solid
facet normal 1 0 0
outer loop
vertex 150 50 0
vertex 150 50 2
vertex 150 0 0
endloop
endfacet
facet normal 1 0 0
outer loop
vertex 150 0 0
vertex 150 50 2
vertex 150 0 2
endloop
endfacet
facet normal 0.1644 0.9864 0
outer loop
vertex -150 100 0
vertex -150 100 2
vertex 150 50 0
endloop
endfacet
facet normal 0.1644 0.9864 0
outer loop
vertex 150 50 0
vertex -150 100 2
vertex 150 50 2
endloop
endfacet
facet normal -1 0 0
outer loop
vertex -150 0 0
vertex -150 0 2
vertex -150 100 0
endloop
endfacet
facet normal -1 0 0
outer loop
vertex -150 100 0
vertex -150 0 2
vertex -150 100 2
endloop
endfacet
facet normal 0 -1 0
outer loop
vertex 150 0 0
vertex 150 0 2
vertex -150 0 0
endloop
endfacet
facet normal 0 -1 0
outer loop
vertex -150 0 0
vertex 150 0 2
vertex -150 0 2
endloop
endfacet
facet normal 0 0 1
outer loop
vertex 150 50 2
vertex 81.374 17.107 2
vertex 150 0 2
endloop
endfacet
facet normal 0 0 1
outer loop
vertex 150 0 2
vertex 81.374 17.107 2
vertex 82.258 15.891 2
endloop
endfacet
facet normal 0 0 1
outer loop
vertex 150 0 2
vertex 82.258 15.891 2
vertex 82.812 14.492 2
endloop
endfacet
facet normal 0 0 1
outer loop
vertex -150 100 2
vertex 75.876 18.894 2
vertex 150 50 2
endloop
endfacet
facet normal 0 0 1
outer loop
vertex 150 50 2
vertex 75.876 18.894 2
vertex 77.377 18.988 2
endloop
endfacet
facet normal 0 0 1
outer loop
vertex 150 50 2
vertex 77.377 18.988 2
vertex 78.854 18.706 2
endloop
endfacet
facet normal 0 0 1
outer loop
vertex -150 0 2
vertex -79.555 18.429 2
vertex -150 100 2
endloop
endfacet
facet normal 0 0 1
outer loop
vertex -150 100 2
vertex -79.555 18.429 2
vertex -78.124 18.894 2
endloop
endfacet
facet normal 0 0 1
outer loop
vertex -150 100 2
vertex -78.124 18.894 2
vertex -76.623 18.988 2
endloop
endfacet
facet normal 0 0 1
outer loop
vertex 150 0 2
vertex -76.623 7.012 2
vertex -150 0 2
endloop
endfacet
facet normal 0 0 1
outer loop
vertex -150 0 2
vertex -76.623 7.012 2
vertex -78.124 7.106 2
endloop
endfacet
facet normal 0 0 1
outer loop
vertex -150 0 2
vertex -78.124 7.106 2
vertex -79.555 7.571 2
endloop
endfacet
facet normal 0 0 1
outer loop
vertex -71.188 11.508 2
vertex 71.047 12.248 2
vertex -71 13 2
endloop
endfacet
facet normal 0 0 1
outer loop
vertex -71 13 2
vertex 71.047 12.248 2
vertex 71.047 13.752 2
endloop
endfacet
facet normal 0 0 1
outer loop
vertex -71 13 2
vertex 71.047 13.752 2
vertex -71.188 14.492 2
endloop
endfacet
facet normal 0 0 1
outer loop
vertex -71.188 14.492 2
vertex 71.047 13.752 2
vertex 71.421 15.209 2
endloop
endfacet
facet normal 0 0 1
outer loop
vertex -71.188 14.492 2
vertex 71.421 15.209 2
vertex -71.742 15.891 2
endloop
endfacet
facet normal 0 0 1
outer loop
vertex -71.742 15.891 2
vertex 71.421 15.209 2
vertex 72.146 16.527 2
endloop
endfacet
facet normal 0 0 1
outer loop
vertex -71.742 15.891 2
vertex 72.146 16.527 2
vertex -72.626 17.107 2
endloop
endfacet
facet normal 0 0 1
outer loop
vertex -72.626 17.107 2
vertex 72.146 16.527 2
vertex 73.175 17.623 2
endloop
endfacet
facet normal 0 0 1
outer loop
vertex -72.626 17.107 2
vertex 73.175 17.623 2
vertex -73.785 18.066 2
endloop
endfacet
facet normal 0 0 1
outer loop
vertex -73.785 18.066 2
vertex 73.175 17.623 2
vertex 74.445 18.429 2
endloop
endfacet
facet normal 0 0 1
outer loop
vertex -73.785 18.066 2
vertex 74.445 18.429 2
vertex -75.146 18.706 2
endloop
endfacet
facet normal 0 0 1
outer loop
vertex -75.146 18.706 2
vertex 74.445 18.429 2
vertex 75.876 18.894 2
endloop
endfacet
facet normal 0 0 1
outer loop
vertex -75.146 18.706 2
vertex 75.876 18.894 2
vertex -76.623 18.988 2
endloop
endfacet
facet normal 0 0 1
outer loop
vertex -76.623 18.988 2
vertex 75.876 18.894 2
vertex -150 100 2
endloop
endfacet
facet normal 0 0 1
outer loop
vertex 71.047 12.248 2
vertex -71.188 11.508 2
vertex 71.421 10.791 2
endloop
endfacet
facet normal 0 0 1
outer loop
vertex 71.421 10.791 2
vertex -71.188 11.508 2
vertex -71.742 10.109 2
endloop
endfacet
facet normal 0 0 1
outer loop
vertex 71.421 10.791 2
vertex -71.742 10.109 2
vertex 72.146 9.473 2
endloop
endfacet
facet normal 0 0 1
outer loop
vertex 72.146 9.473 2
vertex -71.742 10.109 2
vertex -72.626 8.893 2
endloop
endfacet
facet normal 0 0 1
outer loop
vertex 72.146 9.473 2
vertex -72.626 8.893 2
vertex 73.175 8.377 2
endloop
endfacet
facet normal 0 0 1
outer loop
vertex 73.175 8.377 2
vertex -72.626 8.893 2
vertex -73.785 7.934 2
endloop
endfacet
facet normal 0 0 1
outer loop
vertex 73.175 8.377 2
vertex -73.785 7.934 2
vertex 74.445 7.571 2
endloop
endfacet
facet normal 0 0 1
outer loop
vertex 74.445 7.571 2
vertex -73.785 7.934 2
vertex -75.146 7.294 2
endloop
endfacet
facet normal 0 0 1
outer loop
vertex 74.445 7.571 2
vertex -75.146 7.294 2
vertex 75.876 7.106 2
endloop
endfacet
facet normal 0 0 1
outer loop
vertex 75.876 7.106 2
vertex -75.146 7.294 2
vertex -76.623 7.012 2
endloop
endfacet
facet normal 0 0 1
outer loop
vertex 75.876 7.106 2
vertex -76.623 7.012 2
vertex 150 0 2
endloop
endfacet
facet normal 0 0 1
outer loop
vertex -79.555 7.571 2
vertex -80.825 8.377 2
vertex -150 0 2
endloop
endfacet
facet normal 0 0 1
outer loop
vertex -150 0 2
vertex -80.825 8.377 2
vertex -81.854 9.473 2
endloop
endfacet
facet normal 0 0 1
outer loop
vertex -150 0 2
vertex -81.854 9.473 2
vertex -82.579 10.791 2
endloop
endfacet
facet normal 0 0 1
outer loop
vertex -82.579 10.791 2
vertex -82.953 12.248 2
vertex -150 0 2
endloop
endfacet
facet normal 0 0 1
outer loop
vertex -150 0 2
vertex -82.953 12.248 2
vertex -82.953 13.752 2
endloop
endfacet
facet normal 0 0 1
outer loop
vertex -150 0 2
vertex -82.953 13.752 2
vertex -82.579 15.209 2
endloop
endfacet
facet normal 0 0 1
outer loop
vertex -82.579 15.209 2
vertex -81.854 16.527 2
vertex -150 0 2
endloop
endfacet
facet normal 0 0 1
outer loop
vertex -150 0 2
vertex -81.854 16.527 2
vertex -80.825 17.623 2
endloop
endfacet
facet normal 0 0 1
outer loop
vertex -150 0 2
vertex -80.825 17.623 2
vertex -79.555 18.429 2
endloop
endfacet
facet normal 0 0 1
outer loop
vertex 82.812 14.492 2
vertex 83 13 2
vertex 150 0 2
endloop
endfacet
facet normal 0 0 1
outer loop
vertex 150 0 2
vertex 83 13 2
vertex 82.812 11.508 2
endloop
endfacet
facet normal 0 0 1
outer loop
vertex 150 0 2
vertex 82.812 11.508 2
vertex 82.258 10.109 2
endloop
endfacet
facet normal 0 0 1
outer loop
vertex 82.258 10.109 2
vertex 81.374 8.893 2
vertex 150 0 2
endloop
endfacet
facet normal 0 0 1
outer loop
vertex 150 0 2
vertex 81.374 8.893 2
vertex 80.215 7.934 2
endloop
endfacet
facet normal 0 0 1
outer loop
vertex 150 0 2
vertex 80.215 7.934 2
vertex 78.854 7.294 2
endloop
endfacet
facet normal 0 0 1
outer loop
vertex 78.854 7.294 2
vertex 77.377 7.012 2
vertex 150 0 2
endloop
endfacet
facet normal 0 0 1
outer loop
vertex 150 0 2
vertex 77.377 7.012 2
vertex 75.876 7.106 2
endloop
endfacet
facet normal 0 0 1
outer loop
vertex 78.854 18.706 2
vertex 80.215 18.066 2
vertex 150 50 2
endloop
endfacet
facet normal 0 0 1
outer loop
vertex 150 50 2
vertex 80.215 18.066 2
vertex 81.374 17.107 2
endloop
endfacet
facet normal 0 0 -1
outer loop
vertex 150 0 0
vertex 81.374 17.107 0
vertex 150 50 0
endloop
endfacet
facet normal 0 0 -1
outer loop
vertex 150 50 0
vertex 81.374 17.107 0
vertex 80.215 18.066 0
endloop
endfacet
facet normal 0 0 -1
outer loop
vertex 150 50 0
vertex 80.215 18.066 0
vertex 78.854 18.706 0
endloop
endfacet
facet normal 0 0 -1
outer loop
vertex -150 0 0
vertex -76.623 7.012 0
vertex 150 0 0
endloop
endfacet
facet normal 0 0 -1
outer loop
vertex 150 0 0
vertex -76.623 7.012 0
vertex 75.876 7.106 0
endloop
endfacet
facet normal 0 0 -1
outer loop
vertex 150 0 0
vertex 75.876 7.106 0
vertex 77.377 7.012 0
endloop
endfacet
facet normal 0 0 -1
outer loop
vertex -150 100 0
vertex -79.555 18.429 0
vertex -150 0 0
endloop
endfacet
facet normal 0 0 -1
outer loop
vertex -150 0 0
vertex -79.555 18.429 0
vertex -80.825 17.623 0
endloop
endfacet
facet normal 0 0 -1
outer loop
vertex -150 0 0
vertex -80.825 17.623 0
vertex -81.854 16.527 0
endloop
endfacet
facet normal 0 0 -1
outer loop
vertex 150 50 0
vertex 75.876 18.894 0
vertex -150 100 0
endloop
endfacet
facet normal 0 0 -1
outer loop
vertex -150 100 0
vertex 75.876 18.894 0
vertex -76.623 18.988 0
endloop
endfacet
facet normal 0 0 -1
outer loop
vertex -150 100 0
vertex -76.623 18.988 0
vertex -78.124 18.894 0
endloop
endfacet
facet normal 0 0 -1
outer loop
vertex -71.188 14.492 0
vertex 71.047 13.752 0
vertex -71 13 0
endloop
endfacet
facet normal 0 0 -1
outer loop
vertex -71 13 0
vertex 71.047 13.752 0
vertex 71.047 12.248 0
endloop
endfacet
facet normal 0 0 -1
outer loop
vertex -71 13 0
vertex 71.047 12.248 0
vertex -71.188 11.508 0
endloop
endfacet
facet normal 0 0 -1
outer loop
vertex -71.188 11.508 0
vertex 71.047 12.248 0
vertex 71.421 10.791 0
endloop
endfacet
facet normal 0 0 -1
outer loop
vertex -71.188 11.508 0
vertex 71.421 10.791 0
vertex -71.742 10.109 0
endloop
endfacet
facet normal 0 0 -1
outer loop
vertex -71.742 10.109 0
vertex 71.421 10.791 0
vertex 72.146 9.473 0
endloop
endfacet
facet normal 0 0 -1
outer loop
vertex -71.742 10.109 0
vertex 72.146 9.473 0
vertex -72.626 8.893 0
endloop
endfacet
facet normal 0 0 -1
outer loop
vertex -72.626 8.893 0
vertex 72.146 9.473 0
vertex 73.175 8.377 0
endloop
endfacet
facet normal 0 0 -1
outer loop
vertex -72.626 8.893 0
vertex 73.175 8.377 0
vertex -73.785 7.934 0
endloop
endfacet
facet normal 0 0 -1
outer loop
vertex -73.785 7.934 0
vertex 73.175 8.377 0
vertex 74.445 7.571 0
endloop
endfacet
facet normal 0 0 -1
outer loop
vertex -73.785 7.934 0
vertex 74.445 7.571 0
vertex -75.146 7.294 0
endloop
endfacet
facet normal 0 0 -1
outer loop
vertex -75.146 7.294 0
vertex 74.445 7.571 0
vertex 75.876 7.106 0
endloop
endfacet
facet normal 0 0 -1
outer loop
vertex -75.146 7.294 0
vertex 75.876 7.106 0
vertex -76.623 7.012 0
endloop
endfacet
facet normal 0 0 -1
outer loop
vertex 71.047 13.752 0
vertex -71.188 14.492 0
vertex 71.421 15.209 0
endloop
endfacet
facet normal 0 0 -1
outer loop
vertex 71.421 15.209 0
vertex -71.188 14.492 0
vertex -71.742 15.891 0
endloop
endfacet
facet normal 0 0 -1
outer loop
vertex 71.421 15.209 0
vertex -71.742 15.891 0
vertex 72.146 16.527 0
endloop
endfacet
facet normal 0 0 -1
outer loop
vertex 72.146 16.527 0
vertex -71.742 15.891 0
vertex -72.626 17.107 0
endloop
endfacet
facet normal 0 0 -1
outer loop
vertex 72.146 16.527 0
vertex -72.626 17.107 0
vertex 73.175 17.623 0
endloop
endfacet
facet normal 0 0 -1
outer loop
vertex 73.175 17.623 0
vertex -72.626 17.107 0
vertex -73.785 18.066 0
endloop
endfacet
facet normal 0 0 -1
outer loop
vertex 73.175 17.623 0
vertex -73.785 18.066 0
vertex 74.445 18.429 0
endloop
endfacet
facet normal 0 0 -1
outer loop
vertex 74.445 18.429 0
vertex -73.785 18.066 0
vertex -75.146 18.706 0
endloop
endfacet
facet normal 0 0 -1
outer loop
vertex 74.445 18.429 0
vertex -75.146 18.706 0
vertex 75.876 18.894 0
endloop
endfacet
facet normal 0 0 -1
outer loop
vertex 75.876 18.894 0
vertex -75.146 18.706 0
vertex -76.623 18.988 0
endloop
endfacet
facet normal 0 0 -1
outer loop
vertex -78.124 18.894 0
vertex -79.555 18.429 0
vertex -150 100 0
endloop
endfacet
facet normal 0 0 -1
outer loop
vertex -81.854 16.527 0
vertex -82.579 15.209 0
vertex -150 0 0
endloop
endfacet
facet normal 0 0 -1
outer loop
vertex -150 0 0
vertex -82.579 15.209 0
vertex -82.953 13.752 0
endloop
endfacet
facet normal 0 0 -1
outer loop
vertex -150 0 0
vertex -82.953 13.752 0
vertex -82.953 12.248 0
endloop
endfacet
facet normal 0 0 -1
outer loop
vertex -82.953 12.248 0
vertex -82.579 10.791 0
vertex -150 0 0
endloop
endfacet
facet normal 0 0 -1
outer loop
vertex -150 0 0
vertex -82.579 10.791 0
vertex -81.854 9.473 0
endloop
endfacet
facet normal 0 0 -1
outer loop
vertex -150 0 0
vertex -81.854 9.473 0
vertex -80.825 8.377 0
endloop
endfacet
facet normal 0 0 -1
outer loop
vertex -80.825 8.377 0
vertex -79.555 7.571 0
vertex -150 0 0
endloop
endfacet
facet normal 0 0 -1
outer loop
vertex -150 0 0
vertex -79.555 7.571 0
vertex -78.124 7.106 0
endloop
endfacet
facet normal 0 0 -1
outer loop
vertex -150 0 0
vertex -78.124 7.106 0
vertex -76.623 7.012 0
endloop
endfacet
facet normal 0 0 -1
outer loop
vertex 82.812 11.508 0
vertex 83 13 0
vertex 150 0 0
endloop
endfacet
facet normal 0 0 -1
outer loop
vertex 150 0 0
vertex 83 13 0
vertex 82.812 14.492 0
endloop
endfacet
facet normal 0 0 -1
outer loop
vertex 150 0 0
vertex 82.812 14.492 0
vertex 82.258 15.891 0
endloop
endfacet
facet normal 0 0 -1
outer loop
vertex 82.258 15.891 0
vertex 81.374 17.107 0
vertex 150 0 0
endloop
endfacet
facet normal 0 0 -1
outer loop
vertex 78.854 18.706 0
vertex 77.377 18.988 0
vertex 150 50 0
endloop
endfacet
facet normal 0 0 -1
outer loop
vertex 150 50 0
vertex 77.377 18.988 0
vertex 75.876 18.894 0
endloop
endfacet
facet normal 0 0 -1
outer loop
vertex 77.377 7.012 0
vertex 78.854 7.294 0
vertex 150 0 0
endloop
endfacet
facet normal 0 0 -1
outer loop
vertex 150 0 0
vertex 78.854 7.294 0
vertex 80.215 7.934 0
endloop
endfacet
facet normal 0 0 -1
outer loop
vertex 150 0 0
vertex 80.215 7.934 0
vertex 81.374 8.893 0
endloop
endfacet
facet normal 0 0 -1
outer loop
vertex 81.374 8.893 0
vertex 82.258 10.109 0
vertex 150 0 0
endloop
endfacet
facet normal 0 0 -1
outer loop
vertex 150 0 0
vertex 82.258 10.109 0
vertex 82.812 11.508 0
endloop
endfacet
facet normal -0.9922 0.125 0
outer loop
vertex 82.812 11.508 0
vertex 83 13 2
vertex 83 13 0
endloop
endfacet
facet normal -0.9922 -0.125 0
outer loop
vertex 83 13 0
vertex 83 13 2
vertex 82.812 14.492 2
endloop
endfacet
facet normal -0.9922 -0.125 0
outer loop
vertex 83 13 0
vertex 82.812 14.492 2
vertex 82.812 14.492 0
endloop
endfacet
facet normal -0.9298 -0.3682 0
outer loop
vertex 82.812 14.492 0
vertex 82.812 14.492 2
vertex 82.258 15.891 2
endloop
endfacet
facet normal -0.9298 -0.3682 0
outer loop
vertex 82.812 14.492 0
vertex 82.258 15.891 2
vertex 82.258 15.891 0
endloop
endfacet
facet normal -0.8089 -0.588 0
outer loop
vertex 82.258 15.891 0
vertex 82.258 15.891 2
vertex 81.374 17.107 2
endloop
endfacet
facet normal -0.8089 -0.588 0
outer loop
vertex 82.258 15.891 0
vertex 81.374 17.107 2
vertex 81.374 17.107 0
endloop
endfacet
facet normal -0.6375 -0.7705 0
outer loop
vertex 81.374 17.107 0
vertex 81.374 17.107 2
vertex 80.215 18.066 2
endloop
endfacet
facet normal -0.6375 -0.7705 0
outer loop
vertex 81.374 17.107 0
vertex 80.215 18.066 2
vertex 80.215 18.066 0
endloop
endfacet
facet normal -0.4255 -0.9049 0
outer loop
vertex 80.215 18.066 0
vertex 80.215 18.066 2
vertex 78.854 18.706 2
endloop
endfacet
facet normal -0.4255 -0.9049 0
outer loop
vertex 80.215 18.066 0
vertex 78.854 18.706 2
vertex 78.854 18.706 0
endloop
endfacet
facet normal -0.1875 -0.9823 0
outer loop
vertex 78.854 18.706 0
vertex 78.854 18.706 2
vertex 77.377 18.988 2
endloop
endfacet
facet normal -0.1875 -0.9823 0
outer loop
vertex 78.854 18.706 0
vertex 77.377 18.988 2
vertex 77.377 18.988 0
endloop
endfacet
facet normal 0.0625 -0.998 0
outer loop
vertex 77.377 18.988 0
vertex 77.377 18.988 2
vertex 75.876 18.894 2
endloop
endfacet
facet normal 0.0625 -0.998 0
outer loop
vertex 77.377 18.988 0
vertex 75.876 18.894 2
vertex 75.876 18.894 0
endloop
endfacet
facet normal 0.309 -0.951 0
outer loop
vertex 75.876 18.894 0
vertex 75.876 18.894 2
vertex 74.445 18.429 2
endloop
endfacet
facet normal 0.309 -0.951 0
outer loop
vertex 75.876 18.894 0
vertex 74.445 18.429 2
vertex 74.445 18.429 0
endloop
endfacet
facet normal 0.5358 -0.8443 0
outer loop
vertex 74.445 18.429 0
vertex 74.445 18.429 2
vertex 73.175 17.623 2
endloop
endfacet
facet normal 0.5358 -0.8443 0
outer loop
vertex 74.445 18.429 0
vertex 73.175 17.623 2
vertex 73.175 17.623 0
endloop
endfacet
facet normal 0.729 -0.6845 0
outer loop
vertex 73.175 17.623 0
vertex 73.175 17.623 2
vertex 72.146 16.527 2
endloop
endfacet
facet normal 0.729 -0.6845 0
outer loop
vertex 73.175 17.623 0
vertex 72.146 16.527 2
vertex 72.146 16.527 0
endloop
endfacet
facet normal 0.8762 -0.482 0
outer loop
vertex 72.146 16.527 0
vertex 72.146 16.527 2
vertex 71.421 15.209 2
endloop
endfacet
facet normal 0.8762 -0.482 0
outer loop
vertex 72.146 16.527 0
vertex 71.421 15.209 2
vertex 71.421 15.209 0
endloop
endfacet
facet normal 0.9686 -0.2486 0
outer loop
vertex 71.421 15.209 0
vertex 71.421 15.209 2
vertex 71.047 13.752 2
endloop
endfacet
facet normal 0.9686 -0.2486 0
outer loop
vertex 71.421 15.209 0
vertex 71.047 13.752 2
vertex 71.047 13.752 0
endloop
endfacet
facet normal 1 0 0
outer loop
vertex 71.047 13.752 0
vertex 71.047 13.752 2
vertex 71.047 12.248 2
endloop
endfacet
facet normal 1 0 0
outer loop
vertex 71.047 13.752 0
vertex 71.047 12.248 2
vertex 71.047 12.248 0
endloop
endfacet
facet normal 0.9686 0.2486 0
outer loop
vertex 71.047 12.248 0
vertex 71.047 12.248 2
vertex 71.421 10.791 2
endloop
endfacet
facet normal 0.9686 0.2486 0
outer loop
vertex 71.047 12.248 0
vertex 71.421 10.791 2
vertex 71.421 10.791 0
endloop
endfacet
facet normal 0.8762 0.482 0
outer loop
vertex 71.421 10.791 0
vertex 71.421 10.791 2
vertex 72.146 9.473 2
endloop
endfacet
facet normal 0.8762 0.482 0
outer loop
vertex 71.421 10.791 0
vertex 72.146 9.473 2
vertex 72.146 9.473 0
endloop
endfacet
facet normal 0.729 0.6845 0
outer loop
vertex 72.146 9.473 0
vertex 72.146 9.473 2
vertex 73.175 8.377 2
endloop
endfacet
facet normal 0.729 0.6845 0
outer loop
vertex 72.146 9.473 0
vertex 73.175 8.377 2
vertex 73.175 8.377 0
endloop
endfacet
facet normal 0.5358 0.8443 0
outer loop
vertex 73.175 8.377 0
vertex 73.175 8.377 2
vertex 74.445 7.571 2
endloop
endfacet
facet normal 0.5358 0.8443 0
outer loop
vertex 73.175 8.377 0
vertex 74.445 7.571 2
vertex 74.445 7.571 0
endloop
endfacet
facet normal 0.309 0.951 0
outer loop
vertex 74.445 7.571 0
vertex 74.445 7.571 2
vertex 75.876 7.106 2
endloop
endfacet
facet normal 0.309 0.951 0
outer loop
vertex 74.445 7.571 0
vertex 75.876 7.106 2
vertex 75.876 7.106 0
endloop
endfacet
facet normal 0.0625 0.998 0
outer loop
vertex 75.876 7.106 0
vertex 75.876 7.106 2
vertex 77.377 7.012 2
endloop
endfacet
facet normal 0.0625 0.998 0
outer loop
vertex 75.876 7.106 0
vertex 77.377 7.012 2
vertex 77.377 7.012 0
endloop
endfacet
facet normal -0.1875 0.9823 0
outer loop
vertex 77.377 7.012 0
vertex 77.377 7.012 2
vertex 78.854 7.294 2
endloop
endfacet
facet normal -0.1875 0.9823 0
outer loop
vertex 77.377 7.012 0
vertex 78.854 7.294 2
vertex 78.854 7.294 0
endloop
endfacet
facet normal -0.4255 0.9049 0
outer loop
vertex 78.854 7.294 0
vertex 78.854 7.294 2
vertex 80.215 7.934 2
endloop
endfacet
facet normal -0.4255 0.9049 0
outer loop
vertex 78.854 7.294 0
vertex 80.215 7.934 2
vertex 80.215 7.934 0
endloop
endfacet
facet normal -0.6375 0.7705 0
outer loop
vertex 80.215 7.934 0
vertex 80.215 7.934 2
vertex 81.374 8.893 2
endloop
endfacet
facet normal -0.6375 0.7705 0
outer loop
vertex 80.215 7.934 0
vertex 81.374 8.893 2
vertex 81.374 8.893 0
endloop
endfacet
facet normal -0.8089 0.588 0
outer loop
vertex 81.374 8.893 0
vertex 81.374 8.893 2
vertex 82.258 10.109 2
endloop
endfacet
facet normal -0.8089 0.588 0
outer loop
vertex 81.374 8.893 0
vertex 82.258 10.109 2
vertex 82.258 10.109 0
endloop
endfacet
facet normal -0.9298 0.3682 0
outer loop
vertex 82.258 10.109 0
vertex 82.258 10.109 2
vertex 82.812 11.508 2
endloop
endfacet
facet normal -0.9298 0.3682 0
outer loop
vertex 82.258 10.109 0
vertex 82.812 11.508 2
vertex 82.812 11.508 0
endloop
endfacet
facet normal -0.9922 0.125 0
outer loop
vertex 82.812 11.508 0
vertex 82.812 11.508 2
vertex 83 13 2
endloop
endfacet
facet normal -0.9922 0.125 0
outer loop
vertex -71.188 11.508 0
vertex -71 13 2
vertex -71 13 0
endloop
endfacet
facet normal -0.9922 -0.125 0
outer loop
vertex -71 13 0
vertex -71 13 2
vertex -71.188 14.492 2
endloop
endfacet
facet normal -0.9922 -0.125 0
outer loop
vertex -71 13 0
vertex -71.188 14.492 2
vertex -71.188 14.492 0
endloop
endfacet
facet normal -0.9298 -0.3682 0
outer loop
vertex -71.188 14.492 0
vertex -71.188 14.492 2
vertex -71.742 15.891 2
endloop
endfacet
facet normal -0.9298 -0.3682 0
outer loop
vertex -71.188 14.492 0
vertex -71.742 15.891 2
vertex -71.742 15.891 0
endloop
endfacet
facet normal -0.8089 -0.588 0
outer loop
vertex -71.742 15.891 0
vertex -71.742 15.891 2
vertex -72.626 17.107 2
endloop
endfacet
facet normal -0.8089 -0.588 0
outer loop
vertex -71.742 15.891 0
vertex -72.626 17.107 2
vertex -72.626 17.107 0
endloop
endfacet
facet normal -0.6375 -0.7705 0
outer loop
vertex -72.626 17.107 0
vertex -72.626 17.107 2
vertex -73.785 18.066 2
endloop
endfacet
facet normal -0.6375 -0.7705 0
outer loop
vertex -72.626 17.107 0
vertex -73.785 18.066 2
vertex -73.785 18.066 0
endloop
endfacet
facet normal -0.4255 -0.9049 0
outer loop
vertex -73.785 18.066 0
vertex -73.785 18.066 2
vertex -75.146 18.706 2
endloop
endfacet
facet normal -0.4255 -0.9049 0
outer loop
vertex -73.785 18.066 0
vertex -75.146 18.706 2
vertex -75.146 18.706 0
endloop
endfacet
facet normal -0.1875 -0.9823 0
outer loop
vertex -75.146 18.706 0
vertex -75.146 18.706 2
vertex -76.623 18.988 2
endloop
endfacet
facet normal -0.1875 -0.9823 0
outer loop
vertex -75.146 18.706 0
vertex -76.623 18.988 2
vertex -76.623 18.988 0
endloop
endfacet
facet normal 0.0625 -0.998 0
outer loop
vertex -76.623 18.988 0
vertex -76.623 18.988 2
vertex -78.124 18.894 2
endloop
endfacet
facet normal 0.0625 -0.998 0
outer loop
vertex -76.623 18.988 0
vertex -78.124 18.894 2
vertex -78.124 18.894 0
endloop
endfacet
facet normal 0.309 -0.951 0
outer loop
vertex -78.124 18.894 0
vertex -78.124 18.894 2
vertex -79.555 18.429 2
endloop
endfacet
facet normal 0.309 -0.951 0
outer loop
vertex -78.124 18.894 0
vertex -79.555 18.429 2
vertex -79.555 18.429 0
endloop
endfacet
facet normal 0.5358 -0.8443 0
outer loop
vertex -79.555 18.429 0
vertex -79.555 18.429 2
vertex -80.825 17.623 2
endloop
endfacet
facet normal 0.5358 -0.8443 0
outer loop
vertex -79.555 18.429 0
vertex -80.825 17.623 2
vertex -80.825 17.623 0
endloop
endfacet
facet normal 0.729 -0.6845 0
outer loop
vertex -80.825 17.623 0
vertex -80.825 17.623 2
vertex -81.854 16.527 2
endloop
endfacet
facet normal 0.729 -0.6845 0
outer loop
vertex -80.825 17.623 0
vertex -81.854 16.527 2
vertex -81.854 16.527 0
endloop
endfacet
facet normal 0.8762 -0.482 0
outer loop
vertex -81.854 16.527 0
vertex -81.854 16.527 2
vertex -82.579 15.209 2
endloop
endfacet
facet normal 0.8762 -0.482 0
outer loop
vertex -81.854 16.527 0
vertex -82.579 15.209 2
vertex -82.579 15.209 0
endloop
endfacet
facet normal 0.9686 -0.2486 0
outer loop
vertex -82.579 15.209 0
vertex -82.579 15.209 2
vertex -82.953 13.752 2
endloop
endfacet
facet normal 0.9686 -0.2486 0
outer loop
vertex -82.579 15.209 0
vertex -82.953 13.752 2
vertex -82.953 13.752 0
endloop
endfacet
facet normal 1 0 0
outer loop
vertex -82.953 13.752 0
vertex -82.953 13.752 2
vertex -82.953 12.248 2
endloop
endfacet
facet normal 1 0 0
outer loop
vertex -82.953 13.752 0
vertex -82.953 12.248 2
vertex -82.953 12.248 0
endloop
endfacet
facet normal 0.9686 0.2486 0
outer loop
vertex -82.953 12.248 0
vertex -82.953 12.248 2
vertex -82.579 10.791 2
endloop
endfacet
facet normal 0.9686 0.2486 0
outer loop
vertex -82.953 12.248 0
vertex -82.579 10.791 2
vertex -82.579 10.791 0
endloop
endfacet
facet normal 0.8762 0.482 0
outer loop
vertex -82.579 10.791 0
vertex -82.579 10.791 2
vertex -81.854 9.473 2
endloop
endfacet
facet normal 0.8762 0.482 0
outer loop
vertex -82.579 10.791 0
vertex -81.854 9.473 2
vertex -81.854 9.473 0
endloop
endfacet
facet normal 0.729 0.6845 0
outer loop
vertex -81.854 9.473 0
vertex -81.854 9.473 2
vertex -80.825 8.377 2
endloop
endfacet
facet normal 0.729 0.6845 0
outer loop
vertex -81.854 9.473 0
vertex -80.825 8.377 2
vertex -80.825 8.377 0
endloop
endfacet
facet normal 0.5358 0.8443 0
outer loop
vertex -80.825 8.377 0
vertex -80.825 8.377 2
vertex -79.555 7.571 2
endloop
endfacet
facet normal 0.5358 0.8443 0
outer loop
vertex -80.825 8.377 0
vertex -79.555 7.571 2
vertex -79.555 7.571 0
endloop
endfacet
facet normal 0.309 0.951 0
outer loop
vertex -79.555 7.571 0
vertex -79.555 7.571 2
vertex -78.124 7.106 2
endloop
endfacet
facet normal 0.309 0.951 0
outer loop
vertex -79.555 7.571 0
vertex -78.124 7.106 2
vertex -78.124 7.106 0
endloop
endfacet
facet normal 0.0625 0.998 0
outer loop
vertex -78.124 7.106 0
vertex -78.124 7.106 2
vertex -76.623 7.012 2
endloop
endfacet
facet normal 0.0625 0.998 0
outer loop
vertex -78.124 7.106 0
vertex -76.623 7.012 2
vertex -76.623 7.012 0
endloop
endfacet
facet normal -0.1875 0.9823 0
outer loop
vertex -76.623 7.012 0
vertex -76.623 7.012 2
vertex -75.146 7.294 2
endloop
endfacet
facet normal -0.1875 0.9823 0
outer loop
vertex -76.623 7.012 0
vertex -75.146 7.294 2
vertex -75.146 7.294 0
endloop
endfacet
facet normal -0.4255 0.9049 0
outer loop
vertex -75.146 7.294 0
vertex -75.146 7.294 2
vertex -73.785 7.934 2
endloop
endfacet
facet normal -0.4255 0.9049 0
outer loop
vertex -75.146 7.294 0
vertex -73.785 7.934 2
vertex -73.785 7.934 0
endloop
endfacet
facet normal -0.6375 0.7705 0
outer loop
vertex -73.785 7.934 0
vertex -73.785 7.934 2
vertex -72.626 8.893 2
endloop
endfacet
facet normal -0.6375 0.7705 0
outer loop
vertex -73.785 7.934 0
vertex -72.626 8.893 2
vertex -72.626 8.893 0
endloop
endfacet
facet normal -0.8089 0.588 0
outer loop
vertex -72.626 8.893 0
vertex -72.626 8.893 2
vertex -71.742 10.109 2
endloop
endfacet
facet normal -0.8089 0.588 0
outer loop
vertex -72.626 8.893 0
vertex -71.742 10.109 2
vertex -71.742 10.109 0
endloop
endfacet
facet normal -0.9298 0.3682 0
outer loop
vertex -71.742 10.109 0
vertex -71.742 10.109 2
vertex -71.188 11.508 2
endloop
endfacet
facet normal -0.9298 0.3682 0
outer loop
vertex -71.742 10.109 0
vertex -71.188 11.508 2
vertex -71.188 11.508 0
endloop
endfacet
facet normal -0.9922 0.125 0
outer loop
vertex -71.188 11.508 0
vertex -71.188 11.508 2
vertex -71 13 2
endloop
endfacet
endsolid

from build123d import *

# Parameters (mm, degrees)
SALIENTE_EXTRUIR1_DEPTH = 2
CROQUIS2_R              = 6
CORTAR_EXTRUIR1_DEPTH   = 181.288657436


with BuildPart() as part:
    # Croquis1 → Saliente-Extruir1 (new body)
    with BuildSketch(Plane.XY):
        Polygon((150, 0), (-150, 0), (-150, 100), (150, 50), align=None)
    extrude(amount=SALIENTE_EXTRUIR1_DEPTH)

    # Croquis2 → Cortar-Extruir1 (cut, through all)
    with BuildSketch(Plane.XY.offset(2)):
        with Locations((-77, 13)):
            Circle(CROQUIS2_R)
        with Locations((77, 13)):
            Circle(CROQUIS2_R)
    extrude(amount=-CORTAR_EXTRUIR1_DEPTH, mode=Mode.SUBTRACT)


solid = part.part
